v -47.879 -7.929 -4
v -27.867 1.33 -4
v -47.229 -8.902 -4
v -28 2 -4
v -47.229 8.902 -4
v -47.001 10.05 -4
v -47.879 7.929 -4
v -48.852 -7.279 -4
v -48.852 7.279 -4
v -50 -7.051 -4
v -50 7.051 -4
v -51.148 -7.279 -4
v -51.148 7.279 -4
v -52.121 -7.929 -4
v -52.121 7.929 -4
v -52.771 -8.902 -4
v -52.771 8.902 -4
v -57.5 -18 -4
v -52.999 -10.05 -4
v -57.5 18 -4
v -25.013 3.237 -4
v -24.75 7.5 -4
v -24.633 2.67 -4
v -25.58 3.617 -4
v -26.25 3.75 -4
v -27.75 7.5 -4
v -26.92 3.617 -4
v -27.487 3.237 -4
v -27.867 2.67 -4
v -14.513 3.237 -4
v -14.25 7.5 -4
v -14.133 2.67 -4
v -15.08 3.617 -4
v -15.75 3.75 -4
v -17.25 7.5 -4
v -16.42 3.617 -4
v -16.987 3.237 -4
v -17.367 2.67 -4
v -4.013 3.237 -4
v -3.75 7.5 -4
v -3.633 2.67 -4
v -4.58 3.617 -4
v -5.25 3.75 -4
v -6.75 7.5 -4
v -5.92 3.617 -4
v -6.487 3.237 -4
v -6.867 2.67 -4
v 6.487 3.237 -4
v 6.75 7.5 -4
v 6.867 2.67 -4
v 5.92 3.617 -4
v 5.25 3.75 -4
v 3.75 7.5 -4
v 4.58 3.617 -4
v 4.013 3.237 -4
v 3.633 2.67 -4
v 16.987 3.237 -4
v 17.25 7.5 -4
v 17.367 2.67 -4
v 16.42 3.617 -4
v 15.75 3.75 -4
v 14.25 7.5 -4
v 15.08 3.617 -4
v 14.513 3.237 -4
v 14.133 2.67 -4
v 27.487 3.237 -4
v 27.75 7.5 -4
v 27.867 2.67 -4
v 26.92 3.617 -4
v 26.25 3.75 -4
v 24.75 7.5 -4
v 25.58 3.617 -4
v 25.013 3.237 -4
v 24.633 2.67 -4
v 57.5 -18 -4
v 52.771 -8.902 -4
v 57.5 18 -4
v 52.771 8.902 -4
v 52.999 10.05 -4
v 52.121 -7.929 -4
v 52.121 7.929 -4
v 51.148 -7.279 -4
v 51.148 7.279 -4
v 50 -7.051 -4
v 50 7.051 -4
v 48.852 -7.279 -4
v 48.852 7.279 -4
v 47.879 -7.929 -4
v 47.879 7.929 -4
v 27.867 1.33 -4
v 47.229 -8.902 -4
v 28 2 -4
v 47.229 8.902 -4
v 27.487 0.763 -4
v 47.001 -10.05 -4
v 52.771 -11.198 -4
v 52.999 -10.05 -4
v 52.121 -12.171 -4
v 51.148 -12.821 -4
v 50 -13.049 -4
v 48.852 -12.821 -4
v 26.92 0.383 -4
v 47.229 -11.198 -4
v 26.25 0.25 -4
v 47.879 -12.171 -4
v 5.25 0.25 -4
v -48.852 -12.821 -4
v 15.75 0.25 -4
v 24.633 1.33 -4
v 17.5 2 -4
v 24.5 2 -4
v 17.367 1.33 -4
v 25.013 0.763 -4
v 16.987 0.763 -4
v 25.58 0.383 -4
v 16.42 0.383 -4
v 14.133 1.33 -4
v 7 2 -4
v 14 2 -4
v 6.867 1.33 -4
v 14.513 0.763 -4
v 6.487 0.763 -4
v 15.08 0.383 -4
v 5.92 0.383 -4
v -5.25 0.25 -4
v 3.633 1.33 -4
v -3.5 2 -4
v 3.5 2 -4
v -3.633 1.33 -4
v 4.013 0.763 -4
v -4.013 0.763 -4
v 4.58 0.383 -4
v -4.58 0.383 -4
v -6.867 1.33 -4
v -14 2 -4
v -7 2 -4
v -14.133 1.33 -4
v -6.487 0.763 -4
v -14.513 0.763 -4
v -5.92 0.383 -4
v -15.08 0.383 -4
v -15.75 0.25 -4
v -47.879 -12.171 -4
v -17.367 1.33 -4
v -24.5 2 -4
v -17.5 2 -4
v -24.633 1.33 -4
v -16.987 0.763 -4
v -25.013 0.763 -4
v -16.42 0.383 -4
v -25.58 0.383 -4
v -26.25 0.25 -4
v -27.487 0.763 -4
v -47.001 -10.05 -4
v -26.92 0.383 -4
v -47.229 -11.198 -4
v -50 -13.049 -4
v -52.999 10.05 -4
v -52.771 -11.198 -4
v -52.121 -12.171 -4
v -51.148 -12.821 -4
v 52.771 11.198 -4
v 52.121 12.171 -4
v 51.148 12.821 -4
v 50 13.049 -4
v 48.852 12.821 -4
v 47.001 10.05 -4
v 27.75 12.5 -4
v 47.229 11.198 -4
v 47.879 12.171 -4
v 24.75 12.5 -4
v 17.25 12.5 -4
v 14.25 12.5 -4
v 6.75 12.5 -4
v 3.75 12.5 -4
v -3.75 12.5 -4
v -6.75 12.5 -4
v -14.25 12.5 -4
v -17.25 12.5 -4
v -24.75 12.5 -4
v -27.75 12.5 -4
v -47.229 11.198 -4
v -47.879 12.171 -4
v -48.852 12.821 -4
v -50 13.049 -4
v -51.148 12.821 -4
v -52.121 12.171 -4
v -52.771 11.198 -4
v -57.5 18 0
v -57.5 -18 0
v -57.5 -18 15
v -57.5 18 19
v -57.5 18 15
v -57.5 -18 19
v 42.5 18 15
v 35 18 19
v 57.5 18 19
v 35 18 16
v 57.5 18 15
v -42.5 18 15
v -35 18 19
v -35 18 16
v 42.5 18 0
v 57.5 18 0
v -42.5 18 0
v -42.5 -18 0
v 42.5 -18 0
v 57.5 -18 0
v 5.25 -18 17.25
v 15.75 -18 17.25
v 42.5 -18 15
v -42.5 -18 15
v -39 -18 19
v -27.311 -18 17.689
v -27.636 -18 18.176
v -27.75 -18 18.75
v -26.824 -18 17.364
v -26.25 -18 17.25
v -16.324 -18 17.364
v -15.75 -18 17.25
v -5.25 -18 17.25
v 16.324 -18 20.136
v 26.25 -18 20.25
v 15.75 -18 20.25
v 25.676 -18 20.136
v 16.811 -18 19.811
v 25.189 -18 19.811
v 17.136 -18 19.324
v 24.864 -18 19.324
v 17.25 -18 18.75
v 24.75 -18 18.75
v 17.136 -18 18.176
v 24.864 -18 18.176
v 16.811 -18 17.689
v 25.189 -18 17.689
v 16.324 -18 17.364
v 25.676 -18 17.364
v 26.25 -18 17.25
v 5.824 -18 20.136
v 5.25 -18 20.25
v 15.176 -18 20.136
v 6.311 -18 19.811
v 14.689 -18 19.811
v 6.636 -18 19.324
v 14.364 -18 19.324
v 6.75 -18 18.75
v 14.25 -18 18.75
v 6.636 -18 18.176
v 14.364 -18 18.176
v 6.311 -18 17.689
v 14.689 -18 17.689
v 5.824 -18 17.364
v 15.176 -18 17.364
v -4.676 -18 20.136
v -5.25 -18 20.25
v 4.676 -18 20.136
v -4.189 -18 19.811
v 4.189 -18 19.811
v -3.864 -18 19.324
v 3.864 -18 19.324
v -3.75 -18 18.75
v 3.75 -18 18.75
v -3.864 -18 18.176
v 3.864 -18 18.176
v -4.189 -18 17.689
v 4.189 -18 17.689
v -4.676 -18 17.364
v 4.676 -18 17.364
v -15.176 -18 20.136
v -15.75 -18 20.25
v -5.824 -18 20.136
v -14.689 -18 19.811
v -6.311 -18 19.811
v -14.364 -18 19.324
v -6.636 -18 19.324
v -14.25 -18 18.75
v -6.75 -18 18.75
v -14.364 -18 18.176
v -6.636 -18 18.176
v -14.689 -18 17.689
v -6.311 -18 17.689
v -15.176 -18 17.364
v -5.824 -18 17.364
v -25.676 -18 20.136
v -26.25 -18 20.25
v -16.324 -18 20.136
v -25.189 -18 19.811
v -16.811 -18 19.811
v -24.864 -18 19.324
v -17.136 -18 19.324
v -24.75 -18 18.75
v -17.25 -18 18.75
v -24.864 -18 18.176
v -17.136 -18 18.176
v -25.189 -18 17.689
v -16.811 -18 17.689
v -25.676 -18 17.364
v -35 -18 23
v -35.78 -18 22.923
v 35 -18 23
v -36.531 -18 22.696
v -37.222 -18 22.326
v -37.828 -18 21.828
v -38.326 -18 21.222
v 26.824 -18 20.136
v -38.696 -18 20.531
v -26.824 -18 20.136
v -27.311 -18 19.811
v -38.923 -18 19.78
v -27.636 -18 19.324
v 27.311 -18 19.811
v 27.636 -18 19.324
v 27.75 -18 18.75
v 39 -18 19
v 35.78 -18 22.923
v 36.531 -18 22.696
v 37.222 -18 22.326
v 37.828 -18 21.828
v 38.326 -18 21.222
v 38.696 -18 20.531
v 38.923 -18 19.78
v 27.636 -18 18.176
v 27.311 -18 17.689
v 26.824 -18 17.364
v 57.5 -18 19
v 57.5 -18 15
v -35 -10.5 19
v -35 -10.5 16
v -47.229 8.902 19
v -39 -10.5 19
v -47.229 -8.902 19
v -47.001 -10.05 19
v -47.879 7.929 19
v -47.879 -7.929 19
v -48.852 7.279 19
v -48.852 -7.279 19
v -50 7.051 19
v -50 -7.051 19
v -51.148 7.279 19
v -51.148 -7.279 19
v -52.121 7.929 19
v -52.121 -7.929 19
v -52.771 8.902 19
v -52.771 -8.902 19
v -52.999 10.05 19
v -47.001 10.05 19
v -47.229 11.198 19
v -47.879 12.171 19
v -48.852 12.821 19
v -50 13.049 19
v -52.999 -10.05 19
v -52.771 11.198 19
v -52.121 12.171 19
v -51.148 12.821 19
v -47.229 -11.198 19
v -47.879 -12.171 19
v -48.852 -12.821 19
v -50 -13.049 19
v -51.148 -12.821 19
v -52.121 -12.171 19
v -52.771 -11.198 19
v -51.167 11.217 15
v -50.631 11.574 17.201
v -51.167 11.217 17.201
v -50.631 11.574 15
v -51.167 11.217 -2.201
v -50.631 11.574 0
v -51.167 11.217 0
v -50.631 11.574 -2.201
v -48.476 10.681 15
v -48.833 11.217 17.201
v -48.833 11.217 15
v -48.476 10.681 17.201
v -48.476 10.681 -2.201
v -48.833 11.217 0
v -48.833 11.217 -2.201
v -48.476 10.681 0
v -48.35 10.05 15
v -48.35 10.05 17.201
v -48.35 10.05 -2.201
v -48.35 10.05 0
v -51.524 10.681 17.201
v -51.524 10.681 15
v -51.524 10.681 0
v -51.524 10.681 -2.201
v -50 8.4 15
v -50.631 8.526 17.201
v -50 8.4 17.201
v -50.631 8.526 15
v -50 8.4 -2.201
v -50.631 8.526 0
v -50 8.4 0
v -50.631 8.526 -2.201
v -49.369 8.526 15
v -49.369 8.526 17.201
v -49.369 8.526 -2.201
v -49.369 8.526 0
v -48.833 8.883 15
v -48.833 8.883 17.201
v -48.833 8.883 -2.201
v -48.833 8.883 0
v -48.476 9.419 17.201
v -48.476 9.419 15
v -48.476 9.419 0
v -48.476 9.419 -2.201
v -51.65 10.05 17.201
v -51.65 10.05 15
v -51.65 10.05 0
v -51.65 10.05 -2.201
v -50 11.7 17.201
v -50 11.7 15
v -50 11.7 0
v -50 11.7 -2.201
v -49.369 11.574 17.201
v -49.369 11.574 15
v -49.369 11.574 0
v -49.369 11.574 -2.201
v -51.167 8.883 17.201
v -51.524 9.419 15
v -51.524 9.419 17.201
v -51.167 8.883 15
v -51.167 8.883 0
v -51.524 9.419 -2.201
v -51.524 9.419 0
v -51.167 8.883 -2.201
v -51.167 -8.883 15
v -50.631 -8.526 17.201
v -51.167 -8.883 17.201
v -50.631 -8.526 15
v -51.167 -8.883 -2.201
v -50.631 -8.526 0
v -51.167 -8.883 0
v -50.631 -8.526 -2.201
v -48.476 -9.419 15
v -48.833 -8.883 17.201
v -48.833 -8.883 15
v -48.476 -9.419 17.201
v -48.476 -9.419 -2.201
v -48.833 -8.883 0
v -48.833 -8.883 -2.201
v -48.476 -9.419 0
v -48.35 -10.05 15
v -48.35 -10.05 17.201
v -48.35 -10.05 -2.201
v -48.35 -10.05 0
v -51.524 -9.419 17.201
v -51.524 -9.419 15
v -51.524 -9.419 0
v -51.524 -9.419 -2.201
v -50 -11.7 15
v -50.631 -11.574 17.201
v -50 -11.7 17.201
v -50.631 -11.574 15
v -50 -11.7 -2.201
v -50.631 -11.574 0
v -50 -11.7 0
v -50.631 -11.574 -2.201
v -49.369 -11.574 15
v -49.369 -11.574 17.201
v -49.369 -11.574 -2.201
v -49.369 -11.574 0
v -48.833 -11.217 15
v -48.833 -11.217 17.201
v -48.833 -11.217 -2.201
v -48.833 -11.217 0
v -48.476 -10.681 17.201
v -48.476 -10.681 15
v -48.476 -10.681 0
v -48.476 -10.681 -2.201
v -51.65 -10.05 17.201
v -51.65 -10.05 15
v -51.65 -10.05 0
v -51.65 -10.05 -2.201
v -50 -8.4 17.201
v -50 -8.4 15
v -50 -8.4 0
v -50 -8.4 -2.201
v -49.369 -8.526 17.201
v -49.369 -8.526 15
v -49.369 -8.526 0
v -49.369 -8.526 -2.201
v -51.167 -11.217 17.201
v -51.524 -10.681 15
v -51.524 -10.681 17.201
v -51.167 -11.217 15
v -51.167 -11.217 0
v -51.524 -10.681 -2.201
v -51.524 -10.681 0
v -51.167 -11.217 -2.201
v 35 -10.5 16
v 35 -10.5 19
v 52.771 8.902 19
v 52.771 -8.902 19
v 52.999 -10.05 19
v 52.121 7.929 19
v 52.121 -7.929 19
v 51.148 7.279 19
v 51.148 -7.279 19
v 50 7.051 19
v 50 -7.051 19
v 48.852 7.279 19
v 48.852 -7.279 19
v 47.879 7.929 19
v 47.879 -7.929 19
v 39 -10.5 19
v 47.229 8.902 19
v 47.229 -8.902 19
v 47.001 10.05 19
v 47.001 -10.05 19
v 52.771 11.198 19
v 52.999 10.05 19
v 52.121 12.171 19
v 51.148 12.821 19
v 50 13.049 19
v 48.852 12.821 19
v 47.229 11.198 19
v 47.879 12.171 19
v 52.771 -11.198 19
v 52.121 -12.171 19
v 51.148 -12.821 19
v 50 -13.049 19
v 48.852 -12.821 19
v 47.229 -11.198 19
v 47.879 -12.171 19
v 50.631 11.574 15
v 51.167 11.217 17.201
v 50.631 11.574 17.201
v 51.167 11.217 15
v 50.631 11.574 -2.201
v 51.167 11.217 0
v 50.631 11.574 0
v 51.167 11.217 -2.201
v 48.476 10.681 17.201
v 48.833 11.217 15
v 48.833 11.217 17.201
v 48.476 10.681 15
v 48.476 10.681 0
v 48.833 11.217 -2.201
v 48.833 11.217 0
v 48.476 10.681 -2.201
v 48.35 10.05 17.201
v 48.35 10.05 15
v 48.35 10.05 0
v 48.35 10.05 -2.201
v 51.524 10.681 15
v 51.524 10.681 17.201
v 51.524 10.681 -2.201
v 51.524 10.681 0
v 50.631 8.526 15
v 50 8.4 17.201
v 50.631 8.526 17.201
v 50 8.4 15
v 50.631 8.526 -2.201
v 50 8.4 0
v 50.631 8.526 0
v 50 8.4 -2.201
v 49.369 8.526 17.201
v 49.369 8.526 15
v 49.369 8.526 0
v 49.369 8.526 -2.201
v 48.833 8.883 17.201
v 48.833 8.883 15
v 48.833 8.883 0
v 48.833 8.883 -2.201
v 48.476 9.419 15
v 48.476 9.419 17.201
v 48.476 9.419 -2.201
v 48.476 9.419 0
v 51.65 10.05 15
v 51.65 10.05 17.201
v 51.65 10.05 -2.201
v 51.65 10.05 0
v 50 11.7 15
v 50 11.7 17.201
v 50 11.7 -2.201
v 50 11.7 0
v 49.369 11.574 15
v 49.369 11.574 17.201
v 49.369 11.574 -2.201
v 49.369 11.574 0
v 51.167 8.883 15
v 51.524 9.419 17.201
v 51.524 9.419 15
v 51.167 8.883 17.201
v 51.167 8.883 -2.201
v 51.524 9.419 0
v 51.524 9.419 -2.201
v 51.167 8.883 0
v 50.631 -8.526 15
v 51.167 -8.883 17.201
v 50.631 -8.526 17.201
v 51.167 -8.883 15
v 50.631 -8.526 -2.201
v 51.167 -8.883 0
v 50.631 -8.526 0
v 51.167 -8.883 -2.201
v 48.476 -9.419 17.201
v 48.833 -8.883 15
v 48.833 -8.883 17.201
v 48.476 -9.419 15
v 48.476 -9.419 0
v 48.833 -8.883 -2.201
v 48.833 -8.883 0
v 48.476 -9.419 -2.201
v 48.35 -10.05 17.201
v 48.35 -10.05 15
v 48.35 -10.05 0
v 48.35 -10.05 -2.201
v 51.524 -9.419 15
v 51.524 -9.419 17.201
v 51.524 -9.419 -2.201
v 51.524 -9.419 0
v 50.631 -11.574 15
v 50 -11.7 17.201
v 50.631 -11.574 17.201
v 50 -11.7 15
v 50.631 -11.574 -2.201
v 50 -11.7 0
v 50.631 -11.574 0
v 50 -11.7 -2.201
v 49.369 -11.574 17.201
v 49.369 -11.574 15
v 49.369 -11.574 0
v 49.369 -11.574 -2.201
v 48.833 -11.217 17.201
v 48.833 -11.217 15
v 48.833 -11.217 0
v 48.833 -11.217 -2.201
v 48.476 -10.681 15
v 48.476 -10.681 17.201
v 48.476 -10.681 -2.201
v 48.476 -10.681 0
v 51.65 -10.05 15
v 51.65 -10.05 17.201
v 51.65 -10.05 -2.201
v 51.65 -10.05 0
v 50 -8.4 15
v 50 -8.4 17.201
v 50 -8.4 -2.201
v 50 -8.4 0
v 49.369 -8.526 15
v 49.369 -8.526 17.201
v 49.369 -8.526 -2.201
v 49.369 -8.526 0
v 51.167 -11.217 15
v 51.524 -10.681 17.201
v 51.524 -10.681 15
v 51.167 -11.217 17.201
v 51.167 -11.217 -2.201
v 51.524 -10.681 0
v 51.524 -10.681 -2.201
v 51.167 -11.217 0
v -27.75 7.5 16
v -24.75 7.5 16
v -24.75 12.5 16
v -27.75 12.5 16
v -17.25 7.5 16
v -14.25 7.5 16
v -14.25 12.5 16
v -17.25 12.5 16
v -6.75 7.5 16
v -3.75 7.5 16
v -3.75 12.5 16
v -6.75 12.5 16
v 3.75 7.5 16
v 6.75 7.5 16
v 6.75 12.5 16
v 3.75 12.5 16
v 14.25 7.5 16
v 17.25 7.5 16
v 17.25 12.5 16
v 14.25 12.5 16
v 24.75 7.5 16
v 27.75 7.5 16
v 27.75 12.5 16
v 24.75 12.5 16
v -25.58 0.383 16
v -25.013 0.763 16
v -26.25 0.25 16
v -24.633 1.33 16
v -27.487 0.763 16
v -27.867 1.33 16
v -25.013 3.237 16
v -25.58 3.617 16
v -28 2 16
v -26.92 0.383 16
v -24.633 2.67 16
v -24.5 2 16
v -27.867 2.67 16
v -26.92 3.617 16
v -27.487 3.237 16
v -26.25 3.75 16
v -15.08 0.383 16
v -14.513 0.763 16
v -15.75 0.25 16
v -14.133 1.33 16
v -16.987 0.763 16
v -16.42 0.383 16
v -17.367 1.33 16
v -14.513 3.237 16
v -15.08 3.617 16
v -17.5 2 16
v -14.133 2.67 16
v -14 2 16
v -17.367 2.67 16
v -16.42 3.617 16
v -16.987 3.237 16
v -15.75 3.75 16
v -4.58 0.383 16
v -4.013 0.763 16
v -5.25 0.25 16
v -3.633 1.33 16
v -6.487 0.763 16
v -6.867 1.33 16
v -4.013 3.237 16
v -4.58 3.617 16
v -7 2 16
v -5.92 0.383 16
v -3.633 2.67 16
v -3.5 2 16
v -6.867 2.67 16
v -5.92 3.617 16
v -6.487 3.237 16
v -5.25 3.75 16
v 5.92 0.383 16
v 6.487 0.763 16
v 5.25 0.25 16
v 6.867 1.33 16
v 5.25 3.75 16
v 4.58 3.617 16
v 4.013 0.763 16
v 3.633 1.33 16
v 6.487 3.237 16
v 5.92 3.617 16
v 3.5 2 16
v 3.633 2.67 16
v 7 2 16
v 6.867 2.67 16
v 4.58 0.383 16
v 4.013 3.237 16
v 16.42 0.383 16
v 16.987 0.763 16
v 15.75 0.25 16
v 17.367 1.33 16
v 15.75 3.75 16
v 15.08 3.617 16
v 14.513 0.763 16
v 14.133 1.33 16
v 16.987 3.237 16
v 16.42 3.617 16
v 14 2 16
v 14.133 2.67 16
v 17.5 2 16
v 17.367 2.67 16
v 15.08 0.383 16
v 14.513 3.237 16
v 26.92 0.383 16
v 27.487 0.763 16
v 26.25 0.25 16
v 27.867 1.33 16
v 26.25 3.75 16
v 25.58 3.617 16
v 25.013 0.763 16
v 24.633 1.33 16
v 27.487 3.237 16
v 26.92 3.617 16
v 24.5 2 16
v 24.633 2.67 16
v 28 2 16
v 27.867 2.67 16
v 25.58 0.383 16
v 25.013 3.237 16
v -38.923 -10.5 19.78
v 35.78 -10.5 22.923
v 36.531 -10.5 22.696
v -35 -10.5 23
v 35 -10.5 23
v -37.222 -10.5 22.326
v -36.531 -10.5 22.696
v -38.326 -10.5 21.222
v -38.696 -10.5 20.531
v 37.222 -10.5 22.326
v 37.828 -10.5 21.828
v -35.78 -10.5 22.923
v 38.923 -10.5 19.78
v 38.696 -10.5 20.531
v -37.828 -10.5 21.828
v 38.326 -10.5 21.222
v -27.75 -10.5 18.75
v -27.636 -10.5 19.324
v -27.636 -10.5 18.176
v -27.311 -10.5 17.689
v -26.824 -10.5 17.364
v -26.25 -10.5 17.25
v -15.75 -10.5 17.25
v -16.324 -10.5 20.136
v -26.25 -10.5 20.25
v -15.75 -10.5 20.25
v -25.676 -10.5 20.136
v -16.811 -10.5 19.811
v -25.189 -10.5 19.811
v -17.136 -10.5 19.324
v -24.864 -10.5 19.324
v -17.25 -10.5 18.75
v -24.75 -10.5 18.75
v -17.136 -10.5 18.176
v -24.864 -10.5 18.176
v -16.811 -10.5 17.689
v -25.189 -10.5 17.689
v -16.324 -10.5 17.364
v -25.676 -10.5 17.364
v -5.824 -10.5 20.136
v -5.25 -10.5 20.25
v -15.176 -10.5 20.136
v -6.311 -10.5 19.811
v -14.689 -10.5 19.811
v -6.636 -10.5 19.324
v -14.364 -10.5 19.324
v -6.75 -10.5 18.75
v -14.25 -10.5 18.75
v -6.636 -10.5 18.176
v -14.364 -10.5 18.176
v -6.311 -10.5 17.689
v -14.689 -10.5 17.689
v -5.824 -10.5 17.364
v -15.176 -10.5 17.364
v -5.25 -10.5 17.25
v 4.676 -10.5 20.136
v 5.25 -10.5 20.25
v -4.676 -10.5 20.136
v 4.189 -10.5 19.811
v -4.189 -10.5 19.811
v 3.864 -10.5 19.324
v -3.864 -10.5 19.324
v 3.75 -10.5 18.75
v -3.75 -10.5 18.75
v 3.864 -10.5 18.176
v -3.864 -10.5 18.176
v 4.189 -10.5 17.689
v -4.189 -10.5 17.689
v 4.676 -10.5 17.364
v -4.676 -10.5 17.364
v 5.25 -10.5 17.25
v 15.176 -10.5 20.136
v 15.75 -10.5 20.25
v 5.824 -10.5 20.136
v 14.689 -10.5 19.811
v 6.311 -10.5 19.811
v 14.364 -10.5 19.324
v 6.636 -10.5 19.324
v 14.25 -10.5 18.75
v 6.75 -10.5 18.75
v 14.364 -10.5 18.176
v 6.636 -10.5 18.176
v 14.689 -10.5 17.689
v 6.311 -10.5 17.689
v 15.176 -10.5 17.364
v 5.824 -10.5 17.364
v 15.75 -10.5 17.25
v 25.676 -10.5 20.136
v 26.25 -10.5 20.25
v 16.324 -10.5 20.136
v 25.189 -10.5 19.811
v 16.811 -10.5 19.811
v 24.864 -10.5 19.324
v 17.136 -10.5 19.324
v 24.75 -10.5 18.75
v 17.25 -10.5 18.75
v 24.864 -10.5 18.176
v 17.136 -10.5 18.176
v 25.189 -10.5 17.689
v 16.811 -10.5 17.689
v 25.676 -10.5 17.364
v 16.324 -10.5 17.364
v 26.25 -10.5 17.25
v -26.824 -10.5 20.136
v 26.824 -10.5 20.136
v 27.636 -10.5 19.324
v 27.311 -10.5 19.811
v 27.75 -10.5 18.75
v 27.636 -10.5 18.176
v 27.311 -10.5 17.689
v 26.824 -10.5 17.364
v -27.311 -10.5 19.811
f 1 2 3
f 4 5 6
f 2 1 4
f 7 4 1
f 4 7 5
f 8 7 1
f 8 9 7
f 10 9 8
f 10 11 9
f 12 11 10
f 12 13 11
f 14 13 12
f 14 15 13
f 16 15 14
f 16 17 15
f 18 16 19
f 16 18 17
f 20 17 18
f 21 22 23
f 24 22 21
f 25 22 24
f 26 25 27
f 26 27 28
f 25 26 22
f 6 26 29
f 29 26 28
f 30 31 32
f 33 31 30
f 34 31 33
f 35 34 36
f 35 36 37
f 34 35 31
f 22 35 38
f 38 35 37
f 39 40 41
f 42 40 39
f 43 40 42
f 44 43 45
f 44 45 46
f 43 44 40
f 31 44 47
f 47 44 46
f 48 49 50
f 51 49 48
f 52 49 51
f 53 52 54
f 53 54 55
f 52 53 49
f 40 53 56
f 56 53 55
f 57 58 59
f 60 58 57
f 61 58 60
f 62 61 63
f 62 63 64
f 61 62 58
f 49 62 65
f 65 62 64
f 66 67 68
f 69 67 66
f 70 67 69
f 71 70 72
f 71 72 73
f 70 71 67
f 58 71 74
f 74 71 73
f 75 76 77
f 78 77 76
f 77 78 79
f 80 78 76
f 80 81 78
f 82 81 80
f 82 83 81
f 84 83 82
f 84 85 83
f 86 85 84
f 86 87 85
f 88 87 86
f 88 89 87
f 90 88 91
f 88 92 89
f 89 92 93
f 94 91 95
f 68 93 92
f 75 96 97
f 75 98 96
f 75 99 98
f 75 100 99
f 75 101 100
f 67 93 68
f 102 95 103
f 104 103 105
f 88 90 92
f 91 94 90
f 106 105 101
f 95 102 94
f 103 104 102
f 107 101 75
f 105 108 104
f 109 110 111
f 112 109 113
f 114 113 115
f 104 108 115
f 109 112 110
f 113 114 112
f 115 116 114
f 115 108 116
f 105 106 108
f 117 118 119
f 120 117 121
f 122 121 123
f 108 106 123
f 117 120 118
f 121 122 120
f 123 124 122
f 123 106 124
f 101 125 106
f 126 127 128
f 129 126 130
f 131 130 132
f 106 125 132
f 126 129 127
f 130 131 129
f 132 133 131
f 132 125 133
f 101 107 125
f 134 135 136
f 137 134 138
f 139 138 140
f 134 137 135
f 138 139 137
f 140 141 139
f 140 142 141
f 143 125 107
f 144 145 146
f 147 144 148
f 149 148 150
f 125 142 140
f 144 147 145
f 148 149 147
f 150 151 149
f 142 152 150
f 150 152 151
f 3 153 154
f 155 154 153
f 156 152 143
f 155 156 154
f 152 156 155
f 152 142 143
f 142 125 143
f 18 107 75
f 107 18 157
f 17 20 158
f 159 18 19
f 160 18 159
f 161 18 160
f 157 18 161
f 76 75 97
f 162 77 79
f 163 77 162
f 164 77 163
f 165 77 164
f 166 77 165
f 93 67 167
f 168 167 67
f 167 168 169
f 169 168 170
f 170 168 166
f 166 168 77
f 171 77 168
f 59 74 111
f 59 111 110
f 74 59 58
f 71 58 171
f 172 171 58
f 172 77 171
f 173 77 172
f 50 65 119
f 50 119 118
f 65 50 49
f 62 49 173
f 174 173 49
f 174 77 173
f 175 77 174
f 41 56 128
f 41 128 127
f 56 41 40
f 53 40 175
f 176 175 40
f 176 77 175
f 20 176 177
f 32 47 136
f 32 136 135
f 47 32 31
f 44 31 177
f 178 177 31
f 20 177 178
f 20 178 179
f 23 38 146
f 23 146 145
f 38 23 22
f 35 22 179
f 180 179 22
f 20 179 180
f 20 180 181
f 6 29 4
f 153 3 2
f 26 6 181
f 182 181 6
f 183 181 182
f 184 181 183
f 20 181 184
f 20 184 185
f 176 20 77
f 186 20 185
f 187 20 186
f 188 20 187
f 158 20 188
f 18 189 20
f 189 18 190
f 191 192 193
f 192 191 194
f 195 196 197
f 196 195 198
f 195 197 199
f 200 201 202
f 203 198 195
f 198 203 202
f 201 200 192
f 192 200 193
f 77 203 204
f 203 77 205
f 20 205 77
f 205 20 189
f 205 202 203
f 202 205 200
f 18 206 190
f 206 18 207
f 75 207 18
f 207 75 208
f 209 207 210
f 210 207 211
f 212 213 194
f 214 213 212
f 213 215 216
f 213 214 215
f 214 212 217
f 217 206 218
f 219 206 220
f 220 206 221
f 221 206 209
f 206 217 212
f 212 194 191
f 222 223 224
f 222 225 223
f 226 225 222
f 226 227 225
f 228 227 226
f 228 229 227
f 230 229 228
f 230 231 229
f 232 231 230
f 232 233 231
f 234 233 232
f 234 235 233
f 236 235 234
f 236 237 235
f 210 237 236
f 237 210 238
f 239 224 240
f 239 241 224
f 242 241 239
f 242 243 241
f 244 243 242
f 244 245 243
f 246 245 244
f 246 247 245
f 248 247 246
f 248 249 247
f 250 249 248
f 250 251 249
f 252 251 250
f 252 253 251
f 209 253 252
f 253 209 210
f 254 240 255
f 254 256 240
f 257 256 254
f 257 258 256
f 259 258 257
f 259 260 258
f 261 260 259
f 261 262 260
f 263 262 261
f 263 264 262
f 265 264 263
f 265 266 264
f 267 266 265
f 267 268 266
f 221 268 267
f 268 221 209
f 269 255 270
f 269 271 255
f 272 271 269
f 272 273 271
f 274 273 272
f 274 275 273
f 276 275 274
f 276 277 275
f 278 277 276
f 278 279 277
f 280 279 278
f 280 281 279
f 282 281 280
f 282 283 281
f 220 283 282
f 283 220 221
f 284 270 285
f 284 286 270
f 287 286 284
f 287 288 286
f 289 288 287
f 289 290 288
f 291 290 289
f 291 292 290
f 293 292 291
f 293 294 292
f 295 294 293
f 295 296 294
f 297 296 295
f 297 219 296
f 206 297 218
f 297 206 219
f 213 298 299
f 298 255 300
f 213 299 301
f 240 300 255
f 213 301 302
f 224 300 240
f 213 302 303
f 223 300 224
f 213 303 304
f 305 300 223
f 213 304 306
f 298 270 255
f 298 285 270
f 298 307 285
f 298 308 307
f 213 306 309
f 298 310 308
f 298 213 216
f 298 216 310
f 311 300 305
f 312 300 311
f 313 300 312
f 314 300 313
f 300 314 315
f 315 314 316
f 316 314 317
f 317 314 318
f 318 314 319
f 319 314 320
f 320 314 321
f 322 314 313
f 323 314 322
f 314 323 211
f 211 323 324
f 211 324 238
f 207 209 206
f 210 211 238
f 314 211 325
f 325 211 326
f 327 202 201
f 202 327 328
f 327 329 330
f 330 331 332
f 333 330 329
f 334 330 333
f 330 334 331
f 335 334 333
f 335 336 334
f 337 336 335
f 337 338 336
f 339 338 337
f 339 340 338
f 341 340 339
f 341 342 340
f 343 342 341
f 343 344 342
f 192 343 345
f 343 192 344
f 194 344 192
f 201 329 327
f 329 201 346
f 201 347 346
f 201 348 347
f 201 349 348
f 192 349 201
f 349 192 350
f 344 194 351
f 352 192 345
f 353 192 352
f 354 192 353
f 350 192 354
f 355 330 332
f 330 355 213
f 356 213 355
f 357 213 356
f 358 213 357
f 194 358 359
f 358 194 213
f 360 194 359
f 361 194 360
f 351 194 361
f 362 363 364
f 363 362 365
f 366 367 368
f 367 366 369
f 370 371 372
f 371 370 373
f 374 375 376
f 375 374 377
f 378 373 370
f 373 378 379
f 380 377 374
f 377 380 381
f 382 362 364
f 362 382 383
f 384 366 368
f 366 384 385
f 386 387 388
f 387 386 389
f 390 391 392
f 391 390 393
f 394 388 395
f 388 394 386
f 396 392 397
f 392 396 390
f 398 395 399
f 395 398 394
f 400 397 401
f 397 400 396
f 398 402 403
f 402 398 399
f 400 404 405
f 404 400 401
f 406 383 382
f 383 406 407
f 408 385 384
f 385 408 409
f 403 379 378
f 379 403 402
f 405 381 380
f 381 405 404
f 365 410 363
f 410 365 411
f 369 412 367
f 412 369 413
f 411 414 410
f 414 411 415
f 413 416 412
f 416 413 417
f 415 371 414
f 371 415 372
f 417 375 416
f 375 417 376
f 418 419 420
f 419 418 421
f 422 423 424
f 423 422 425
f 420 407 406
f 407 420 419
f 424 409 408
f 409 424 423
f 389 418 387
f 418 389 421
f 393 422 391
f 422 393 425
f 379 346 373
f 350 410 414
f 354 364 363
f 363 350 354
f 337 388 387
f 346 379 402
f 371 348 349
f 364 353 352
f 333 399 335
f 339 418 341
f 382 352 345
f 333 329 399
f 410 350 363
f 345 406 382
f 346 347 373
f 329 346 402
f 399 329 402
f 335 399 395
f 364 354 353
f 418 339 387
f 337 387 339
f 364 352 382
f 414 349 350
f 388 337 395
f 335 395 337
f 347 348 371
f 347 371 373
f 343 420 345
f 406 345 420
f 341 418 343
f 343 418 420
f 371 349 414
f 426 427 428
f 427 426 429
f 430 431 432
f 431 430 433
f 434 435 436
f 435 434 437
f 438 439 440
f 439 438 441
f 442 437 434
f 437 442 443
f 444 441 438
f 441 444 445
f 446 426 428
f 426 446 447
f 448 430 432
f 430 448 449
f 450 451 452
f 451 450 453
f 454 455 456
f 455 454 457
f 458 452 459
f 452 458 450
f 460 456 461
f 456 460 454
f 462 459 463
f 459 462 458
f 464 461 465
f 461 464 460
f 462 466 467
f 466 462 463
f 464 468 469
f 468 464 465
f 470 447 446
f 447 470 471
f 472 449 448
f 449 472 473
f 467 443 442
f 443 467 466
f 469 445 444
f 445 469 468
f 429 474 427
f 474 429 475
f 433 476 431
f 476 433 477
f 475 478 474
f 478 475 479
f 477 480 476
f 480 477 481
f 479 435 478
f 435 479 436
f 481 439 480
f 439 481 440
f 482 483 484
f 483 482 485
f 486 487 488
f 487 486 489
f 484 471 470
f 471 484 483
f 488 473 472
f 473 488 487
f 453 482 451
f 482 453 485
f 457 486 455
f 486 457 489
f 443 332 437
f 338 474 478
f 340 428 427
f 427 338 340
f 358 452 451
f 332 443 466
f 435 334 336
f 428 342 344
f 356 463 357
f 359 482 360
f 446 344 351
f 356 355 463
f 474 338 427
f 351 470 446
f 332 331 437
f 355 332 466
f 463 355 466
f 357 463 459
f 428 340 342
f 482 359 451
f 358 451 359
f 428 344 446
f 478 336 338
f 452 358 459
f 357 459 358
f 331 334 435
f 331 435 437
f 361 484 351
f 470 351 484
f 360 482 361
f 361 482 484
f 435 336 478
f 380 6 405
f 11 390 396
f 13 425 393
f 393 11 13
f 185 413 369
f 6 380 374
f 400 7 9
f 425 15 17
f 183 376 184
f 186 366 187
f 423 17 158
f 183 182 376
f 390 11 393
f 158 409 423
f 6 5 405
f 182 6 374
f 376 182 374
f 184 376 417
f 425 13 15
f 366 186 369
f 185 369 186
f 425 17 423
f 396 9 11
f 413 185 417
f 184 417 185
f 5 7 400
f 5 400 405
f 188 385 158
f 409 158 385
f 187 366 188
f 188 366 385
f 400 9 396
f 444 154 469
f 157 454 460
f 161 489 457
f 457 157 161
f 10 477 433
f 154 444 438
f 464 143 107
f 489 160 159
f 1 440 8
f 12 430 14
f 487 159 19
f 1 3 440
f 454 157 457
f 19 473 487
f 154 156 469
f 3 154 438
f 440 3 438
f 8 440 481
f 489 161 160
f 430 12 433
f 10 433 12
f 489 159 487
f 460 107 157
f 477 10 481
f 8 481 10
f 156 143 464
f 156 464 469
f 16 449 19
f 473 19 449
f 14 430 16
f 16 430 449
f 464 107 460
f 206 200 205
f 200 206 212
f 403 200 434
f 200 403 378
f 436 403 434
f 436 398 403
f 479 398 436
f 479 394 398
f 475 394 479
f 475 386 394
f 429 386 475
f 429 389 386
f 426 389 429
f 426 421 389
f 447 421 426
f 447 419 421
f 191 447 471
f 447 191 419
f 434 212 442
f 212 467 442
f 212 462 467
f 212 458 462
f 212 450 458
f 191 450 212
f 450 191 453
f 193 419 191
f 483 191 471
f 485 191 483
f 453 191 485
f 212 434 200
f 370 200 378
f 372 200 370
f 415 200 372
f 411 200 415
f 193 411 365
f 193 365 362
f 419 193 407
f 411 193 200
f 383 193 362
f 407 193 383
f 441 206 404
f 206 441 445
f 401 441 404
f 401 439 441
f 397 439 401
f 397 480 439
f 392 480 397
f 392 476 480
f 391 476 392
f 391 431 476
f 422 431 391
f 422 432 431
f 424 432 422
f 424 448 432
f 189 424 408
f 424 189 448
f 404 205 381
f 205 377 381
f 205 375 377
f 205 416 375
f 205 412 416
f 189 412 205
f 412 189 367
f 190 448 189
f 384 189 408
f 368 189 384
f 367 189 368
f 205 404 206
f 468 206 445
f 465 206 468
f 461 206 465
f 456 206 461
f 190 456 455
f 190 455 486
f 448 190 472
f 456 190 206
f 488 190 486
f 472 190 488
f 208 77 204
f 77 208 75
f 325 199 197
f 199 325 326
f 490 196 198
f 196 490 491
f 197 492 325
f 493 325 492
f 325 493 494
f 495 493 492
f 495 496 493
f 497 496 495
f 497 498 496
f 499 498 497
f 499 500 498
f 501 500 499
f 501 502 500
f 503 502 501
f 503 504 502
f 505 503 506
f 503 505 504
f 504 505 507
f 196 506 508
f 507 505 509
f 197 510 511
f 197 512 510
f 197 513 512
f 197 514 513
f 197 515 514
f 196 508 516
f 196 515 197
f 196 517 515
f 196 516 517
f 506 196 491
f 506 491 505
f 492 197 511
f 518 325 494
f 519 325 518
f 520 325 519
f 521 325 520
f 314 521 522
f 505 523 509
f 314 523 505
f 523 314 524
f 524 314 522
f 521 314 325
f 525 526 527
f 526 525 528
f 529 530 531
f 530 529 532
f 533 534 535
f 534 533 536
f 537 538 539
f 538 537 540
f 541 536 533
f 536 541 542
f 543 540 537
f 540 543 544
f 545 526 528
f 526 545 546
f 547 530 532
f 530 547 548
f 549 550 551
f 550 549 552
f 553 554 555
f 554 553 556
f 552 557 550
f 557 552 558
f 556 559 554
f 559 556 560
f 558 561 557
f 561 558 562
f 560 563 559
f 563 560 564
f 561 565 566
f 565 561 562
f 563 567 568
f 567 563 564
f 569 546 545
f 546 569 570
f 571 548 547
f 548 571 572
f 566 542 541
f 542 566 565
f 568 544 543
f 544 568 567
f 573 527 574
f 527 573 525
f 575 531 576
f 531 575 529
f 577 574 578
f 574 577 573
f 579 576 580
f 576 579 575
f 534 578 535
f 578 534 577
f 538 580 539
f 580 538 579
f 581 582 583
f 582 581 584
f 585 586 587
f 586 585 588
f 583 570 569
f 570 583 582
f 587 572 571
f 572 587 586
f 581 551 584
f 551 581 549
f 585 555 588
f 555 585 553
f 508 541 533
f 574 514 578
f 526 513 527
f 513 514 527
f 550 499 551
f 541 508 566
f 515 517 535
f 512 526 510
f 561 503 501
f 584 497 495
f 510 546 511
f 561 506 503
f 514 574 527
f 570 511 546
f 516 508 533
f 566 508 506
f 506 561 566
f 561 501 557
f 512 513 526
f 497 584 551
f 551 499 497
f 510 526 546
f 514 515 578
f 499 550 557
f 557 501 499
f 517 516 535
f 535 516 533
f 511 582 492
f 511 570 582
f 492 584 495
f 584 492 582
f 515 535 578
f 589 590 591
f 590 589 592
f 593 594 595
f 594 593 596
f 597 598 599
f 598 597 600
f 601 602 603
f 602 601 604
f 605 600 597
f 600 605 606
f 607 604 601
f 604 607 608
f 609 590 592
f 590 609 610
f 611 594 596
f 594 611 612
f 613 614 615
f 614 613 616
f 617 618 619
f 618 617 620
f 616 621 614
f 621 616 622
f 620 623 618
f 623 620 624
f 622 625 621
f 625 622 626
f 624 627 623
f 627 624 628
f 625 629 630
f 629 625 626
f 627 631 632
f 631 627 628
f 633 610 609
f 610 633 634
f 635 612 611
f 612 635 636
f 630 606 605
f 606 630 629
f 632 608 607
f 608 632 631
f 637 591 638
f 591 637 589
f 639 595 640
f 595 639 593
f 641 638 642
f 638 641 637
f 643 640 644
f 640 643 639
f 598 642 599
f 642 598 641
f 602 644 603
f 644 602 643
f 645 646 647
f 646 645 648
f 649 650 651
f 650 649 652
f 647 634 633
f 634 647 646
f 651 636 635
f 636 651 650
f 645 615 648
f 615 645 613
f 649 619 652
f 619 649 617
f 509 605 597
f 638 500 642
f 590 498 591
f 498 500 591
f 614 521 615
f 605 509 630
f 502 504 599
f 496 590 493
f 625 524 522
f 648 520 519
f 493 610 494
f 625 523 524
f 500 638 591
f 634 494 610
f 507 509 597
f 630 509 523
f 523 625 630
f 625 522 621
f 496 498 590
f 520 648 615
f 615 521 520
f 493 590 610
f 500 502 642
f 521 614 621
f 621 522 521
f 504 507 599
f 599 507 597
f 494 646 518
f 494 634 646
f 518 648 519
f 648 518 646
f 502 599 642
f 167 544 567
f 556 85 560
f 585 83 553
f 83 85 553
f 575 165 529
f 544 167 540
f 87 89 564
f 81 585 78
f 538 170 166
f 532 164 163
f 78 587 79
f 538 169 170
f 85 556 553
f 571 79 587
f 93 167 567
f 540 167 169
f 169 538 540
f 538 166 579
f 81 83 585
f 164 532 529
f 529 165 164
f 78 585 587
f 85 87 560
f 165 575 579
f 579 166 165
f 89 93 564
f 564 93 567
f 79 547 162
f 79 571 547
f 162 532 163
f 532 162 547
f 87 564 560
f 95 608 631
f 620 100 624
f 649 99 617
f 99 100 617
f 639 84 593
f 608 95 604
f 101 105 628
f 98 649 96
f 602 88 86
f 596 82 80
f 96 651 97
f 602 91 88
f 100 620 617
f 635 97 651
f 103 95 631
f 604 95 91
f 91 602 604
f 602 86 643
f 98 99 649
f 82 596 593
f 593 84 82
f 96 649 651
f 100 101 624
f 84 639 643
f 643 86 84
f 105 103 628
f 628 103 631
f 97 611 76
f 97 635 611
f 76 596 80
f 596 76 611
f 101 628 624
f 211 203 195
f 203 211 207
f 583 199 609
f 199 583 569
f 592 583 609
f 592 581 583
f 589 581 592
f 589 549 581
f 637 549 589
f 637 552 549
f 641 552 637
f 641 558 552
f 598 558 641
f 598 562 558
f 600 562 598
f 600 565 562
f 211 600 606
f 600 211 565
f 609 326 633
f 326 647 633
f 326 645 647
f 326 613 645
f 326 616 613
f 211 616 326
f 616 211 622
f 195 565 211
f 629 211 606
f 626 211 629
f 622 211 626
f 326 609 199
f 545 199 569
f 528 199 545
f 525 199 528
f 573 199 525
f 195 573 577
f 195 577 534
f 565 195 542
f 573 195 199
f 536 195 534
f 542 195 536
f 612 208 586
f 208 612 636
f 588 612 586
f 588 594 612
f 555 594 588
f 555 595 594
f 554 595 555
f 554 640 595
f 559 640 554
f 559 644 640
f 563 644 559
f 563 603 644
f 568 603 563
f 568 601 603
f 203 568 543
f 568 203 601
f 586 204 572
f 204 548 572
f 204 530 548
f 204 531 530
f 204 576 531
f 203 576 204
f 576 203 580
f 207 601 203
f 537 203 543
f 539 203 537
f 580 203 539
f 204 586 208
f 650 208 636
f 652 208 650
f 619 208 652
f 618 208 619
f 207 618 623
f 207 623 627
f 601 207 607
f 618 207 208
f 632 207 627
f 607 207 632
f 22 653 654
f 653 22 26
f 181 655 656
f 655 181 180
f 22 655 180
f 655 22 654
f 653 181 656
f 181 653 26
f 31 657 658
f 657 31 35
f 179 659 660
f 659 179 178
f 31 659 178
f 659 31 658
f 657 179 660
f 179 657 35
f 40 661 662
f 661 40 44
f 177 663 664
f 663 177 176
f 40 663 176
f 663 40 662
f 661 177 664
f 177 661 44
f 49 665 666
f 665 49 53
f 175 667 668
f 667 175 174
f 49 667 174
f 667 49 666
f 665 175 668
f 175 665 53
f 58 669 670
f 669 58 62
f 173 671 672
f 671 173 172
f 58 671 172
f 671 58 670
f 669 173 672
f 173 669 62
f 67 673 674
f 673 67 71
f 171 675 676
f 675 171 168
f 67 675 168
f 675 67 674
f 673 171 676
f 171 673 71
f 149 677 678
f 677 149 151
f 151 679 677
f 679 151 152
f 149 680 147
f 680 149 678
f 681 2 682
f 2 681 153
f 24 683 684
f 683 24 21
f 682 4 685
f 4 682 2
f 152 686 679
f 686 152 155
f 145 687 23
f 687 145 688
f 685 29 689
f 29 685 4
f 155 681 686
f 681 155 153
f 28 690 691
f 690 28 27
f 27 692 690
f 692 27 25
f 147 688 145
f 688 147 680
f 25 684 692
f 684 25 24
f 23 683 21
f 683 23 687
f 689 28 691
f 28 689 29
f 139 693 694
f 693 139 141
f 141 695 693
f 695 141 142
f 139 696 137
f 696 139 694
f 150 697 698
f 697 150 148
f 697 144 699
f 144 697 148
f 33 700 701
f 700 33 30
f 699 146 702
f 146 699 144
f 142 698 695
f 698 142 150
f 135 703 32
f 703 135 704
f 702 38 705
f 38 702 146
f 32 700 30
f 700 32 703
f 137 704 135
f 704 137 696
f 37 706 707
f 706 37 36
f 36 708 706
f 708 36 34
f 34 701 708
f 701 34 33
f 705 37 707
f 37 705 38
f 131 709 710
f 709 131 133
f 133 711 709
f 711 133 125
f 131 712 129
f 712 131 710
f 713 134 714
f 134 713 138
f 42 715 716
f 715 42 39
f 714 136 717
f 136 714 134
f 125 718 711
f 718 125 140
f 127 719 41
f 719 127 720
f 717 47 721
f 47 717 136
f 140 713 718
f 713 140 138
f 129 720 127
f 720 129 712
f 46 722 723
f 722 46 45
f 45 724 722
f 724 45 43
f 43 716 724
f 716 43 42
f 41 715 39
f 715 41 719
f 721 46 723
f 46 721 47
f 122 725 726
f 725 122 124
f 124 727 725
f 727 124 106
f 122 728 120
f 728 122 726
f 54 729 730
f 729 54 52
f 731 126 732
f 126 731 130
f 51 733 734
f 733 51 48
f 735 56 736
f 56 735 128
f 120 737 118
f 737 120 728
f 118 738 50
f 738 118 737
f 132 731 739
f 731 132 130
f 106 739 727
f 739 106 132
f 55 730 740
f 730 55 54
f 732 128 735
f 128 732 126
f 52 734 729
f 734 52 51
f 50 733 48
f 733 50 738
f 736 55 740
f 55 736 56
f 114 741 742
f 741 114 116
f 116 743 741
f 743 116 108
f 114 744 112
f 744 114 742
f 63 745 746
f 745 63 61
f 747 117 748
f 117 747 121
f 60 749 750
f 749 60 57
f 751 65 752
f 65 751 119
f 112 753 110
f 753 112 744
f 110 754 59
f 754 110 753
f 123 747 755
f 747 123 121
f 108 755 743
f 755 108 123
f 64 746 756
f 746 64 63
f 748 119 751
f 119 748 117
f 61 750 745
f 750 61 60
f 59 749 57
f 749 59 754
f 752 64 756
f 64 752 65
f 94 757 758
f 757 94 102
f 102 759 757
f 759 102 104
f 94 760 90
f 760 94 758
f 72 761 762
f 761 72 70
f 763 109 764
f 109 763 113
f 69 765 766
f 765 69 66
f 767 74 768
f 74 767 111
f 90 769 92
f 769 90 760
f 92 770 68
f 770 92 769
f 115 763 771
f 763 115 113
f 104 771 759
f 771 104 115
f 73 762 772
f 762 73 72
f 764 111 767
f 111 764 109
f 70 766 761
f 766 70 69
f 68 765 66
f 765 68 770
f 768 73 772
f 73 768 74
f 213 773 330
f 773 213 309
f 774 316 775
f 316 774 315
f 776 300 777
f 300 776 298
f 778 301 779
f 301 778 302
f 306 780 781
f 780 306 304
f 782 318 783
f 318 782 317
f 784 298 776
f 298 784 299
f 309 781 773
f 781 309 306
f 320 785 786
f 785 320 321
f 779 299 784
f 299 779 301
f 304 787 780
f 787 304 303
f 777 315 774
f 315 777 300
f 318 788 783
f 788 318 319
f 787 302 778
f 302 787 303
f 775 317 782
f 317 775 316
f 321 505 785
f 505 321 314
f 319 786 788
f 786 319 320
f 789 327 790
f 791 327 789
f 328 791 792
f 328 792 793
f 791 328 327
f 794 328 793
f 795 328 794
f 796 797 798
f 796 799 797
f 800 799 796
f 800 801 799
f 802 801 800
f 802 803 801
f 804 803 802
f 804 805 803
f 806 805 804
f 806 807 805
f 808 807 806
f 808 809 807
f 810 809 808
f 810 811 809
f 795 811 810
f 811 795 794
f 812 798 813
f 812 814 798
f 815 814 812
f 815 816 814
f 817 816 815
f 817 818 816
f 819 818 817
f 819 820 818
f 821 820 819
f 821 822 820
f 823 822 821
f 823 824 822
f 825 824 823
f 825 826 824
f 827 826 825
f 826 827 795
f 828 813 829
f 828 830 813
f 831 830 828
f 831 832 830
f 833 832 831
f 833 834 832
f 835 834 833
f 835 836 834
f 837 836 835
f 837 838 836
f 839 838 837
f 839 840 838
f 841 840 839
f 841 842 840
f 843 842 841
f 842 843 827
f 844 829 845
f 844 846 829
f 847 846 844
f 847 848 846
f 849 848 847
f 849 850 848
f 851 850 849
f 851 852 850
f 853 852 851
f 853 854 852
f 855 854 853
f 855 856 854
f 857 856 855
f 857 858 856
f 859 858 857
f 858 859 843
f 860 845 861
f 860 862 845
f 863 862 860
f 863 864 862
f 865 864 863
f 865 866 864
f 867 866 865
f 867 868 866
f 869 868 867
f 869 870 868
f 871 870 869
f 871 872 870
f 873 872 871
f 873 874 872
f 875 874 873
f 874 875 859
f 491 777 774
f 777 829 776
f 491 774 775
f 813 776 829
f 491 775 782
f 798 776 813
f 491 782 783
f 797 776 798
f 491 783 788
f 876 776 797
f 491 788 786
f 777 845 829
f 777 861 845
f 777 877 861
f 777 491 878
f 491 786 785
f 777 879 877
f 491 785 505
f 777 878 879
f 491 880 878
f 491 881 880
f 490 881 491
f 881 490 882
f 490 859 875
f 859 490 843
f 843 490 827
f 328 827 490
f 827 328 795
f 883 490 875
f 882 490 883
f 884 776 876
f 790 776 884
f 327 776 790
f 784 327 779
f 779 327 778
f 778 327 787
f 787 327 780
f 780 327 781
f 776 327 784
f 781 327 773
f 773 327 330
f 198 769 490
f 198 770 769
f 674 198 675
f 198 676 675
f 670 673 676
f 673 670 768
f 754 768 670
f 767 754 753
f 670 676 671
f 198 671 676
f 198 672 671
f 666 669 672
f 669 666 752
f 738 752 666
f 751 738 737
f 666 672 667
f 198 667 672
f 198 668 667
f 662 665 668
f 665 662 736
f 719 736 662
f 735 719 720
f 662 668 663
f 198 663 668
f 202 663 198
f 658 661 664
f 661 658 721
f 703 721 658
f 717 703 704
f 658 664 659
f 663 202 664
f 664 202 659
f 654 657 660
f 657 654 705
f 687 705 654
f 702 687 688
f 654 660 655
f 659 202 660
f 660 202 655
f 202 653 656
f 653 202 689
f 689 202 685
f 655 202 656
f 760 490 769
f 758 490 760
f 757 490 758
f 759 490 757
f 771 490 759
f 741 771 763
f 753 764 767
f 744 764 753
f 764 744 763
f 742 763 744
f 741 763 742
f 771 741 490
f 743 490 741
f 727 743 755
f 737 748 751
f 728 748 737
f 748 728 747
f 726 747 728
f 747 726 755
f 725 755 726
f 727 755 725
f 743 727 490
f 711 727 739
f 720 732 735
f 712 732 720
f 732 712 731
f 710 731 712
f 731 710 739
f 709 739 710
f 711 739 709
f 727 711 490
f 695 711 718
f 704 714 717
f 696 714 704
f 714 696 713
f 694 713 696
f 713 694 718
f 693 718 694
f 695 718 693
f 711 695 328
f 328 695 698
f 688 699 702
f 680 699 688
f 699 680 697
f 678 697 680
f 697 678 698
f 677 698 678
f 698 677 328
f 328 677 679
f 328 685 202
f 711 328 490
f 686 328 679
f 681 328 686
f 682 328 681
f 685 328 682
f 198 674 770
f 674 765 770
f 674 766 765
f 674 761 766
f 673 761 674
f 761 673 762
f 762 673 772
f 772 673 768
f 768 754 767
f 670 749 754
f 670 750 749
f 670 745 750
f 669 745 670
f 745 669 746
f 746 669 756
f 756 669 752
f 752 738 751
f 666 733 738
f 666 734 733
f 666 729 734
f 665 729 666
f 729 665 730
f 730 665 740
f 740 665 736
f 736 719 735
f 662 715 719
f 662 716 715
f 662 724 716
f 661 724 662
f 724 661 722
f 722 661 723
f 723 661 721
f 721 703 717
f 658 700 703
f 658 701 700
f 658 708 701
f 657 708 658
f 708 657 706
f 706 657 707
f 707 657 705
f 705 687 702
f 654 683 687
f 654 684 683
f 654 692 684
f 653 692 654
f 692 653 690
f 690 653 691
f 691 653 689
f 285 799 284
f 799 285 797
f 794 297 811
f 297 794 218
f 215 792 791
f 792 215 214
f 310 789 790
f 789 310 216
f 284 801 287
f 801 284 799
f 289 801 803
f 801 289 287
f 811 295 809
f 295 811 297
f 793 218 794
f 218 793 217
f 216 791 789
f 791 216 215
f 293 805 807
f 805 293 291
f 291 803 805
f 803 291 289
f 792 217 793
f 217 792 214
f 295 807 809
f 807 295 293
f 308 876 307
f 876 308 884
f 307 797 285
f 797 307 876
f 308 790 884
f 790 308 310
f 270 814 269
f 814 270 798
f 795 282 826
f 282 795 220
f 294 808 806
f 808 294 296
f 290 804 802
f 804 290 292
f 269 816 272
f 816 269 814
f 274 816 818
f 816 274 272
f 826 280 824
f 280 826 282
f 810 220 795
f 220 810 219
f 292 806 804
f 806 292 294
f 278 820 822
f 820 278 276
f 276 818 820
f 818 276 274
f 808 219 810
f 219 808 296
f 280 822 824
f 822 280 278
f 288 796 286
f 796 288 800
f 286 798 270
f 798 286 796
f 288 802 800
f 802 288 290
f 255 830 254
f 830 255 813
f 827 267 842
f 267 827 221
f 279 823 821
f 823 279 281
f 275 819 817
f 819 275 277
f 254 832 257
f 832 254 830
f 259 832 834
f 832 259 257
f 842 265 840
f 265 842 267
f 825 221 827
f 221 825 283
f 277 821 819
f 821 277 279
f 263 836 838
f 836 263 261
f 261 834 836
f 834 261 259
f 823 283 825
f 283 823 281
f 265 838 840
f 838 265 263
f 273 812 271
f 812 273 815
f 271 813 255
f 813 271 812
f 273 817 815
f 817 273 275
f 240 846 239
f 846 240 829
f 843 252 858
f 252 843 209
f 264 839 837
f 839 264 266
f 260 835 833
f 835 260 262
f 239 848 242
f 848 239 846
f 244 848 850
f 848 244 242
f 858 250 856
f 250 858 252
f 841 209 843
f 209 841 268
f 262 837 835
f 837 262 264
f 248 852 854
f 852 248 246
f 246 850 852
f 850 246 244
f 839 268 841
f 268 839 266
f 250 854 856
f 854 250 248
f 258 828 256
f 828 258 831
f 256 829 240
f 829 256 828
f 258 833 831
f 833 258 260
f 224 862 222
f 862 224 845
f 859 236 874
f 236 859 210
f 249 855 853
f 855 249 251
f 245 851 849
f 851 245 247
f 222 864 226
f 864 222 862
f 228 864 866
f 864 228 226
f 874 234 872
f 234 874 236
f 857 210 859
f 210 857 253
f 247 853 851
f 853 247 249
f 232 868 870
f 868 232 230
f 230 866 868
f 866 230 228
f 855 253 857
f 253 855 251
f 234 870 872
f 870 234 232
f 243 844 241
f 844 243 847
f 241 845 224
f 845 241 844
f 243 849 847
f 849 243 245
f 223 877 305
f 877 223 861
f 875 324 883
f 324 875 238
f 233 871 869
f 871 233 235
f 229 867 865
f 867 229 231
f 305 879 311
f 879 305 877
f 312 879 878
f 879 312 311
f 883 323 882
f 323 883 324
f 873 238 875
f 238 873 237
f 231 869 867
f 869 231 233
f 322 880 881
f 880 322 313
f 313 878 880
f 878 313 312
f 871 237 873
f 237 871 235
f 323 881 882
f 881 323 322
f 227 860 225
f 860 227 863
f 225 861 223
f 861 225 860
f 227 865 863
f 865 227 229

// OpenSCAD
// file: ../parameter.scad
nStrings=6;
nFrets=24;
nLedFrets=16;
m5Dia=5.3;
m5HeadZ=3.5;
m4Dia=4.3;
m4NutDia=8.3;
m4NutZ=3.5;
m4HeadZ=2.5;
m3Dia=3.3;
m3NutDia=6.6;
m3NutZ=2.5;
m3HeadZ=2;
m3HeadDia=6;
m2Dia=2.4;
m2HeadZ=2;
strDistN=7;
strDistB=10.5;
scale=645;
neckSlotY=500;

slotXY=15;

bodySlotX=115;
bodySlotY=250;

jackYA=40;
jackYB=54;
jackZA=20;
jackZB=25;

bodyX=300;

bodyZ=40;

strDia=[1.7,1.4,1.1,0.7,0.5,0.35];

fretStrPlus=4;
fretLN=strDistN*(nStrings-1)+fretStrPlus*2;
fretLB=strDistB*(nStrings-1)+fretStrPlus*2;
strSpanB=strDistB*(nStrings-1);
strSpanN=strDistN*(nStrings-1);
fretBtmZ=1;
neckSlotX=fretLN;
neckSlotDist=neckSlotX-slotXY*2;

neck_sideT=5.5; //thicknes of the neck side locks
neck_bottomT=2.5;

neck_mntPosYA=447;
neck_mntPosYB=420;
neck_mntEndT=2.5;
neck_lastFretSpc=13;

nut_slotSink=6;

//fretY=16;
fretPcbZ=1.6;
fretDia=3.5;
fretZ=1.5;
fretOvrZ=4;
fretboardZ=fretOvrZ+fretPcbZ;



L=scale;
k=1.05946;

fretPos1=scale-(scale/pow(k,4));

function fretPos(i)=L-(L/pow(k,i));
function fretSpc(i)=(L/pow(k,i))-(L/pow(k,i+1));
function strSpc(i)=i/L*strDistB+(1-i/L)*strDistN;
function fretL(i)=(i/L*strDistB+(1-i/L)*strDistN)*(nStrings-1)+fretStrPlus*2;

echo (70-(fretL(fretPos(1))));
// main file
include <../parameter.scad>;

bridge(0);



//translate([0,0,0])difference(){
//bridgeMount();
//}

topZ=4;
bottomZ=4;
z=topZ+bottomZ+slotXY;
//sink=1.5;
//bockSlotDia=8;//(x-slotXY)/2;
//bockSlotSpc=1.2;
yA=36;
x=bodySlotX-slotXY*2;
//strStrt=5; //were the string starts to be free
scrwD=3.3; 
scrwTD=2.8;
scrwHeadD=6;
scrwHeadZ=1.8;
StrMountT=7.5;
zStrM=8;
scrwOff=4;
mntY=yA;
strHoleDia=3.5;
strHolePos=16;
cblHoleX=5;
cblHoleY=3;
cblHolePos=8;
bockSink=3;
strScrwPos=2.75;
strScrwDia=3;
scrwBockPos=12;

module bridge(part){
translate([0,0,0])bridgeMount(part);
if(part==1||part==0)translate([0,yA/2,slotXY])strStuff(part);
}
 

module scrw(dia){
$fn=16;
headD=scrwHeadD;
headZ=scrwHeadZ;
cylinder(d=dia,h=z);
translate([0,0,z-headZ])cylinder(d1=dia,d2=headD,h=headZ);
}

module bockCut(){
$fn=16;
t=0.4;
rotate([0,0,0])
for(i=[0:nStrings-1]){
translate([strStrt,i*strDistB-strSpanB/2,0]){
hull(){
translate([0,strDistB/2-bockSlotDia/2-bockSlotSpc/2,0])rotate([0,0,0])cylinder(d=bockSlotDia+t,h=z);
translate([0,-(strDistB/2-bockSlotDia/2-bockSlotSpc/2),0])rotate([0,0,0])cylinder(d=bockSlotDia+t,h=z);   
}
translate([0,0,-z])cylinder(d=scrwTD,h=z);
}}
}

module cblHole(){
  $fn=16;
  t=0.4;
  rotate([0,0,0])
    for(i=[0:nStrings-1]){
    translate([cblHolePos,i*strDistB-strSpanB/2,0]){
    translate([0,0,0])cube([cblHoleX,cblHoleY,100],center=true);
    }
  }
}

module strHole(){
  $fn=16;
  t=0.4;
  rotate([0,0,0])
  for(i=[0:nStrings-1]){
    translate([strHolePos,i*strDistB-strSpanB/2,0]){
    cylinder(d=strHoleDia, h=100,center=true);
    }
  }
}



module strStuff(part){
strHDia=2.5;
strings=nStrings;
spacing=strDistB;



translate([-x/2,0,0])rotate([0,0,-90]){
difference(){
difference(){
hull(){
$fn=32;
translate([0,slotXY/2,zStrM/2])rotate([0,90,0])cylinder(d=zStrM,h=yA);
translate([0,x-slotXY/2,zStrM/2])rotate([0,90,0])cylinder(d=zStrM,h=yA);
}
hull(){
translate([0,0,0]){
translate([-1,-x/2,topZ-bockSink])cube([1,x*2,zStrM]);
translate([yA-3-StrMountT,-x/2,topZ-bockSink])cube([3,x*2,yA]);
}
}
//translate([-1,-y/2,topZ])cube([bockSlotDia*2+2,y*2,z]);
}

for(i=[0:strings-1]){
translate([0,i*spacing+(x-strSpanB)/2,0]){
translate([yA-StrMountT+2,0,topZ-bockSink+strScrwPos])rotate([0,90,0])translate([0,0,-slotXY])cylinder(d=strScrwDia,h=yA,$fn=16);

}}

translate([scrwBockPos,0,0]){
//translate([0,x/2,-z+topZ+0.001-bockSink])scrw(scrwD); 
//translate([0,x/2+strSpanB/2-strDistB/2,-z+topZ+0.001-bockSink])scrw(scrwD); 
//translate([0,x/2-(strSpanB/2-strDistB/2),-z+topZ+0.001-bockSink])scrw(scrwD);
}

translate([mntY/2-StrMountT/2,0,zStrM-topZ]){
//translate([yA/2,x/2,-z+topZ+0.001])scrw(scrwD);
//translate([yA/2,x/2+strSpanB/2-strDistB/2,-z+topZ+0.001])scrw(scrwD); 
//translate([yA/2,x/2-(strSpanB/2-strDistB/2),-z+topZ+0.001])scrw(scrwD);
}

translate([0,x/2,0])cblHole();
translate([0,x/2,0])strHole();
}
}
}

module bridgeMount(part){
z=topZ+bottomZ+slotXY;

difference(){
union(){
oneSide(1);
oneSide(-1);
}
//translate([0,yA/2,slotXY/2])rotate([0,0,-90])bockCut();
translate([0,yA/2,slotXY/2])rotate([0,0,-90])cblHole();
translate([0,yA/2,slotXY/2])rotate([0,0,-90])strHole();
}

phSp=0.4;

module oneSide(mirror){
scale([mirror,1,1])translate([0,0,0])difference(){
union(){
if(part==2||part==0)translate([-bodySlotX/4,0,z/2-bottomZ-topZ/2])cube([bodySlotX/2,yA,z-topZ],center=true);
hull(){
translate([-bodySlotX/2+slotXY,0,z/2-bottomZ])cube([slotXY,yA,z],center=true);
translate([-bodySlotX/2+slotXY/2+1,0,z/2-bottomZ])cube([slotXY+2,mntY,z],center=true);
}
}

translate([-bodySlotX/2+slotXY/2,0,(slotXY)/2])cube([slotXY,slotXY*4,slotXY],center=true);
//translate([-bodySlotX/2+slotXY/2,0,(slotXY)/2])cube([slotXY*6,slotXY,slotXY],center=true);


translate([-bodySlotX/2+slotXY/2,slotXY-scrwD*1.5,-bottomZ+0.001])scrw(scrwD);
translate([-bodySlotX/2+slotXY/2,-slotXY+scrwD*1.5,-bottomZ+0.001])scrw(scrwD);

translate([-bodySlotX/2+slotXY/2,slotXY-scrwD*1.5,-bottomZ+z-0.001])rotate([180,0,0])scrw(scrwD);
translate([-bodySlotX/2+slotXY/2,-slotXY+scrwD*1.5,-bottomZ+z-0.001])rotate([180,0,0])scrw(scrwD);

translate([0,yA/2-scrwBockPos,0]){
//translate([0,0,-bottomZ-0.001])scrw(scrwTD);
//translate([-(strSpanB/2-strDistB/2),0,-bottomZ-0.001])scrw(scrwTD);
}
translate([0,-(mntY/2-StrMountT/2),0]){
//translate([0,0,-bottomZ-0.001])scrw(scrwTD);
//translate([-(strSpanB/2-strDistB/2),0,-bottomZ-0.001])scrw(scrwTD);
}

if(part==1)translate([0,0,(z-topZ)/2-bottomZ])cube([300,300,z-topZ],center=true);
if(part==2)translate([0,0,z/2+slotXY])cube([300,300,z],center=true);
}
}
}

module bock(){
$fn=16;
bockDia=bockSlotDia-0.4;
z=z/2+bockDia/2-scrwHeadZ-1;
hull(){
translate([0,strDistB/2-bockSlotDia/2-bockSlotSpc/2,0])rotate([0,0,0])cylinder(d=bockDia,h=z-bockSlotDia/2);
translate([0,-(strDistB/2-bockSlotDia/2-bockSlotSpc/2),0])rotate([0,0,0])cylinder(d=bockDia,h=z-bockSlotDia/2);
}
translate([0,strDistB/2-bockSlotDia/2-bockSlotSpc/2,z-bockSlotDia/2])rotate([0,0,0])sphere(d=bockDia);
translate([0,-(strDistB/2-bockSlotDia/2-bockSlotSpc/2),z-bockSlotDia/2])rotate([0,0,0])sphere(d=bockDia);
}
